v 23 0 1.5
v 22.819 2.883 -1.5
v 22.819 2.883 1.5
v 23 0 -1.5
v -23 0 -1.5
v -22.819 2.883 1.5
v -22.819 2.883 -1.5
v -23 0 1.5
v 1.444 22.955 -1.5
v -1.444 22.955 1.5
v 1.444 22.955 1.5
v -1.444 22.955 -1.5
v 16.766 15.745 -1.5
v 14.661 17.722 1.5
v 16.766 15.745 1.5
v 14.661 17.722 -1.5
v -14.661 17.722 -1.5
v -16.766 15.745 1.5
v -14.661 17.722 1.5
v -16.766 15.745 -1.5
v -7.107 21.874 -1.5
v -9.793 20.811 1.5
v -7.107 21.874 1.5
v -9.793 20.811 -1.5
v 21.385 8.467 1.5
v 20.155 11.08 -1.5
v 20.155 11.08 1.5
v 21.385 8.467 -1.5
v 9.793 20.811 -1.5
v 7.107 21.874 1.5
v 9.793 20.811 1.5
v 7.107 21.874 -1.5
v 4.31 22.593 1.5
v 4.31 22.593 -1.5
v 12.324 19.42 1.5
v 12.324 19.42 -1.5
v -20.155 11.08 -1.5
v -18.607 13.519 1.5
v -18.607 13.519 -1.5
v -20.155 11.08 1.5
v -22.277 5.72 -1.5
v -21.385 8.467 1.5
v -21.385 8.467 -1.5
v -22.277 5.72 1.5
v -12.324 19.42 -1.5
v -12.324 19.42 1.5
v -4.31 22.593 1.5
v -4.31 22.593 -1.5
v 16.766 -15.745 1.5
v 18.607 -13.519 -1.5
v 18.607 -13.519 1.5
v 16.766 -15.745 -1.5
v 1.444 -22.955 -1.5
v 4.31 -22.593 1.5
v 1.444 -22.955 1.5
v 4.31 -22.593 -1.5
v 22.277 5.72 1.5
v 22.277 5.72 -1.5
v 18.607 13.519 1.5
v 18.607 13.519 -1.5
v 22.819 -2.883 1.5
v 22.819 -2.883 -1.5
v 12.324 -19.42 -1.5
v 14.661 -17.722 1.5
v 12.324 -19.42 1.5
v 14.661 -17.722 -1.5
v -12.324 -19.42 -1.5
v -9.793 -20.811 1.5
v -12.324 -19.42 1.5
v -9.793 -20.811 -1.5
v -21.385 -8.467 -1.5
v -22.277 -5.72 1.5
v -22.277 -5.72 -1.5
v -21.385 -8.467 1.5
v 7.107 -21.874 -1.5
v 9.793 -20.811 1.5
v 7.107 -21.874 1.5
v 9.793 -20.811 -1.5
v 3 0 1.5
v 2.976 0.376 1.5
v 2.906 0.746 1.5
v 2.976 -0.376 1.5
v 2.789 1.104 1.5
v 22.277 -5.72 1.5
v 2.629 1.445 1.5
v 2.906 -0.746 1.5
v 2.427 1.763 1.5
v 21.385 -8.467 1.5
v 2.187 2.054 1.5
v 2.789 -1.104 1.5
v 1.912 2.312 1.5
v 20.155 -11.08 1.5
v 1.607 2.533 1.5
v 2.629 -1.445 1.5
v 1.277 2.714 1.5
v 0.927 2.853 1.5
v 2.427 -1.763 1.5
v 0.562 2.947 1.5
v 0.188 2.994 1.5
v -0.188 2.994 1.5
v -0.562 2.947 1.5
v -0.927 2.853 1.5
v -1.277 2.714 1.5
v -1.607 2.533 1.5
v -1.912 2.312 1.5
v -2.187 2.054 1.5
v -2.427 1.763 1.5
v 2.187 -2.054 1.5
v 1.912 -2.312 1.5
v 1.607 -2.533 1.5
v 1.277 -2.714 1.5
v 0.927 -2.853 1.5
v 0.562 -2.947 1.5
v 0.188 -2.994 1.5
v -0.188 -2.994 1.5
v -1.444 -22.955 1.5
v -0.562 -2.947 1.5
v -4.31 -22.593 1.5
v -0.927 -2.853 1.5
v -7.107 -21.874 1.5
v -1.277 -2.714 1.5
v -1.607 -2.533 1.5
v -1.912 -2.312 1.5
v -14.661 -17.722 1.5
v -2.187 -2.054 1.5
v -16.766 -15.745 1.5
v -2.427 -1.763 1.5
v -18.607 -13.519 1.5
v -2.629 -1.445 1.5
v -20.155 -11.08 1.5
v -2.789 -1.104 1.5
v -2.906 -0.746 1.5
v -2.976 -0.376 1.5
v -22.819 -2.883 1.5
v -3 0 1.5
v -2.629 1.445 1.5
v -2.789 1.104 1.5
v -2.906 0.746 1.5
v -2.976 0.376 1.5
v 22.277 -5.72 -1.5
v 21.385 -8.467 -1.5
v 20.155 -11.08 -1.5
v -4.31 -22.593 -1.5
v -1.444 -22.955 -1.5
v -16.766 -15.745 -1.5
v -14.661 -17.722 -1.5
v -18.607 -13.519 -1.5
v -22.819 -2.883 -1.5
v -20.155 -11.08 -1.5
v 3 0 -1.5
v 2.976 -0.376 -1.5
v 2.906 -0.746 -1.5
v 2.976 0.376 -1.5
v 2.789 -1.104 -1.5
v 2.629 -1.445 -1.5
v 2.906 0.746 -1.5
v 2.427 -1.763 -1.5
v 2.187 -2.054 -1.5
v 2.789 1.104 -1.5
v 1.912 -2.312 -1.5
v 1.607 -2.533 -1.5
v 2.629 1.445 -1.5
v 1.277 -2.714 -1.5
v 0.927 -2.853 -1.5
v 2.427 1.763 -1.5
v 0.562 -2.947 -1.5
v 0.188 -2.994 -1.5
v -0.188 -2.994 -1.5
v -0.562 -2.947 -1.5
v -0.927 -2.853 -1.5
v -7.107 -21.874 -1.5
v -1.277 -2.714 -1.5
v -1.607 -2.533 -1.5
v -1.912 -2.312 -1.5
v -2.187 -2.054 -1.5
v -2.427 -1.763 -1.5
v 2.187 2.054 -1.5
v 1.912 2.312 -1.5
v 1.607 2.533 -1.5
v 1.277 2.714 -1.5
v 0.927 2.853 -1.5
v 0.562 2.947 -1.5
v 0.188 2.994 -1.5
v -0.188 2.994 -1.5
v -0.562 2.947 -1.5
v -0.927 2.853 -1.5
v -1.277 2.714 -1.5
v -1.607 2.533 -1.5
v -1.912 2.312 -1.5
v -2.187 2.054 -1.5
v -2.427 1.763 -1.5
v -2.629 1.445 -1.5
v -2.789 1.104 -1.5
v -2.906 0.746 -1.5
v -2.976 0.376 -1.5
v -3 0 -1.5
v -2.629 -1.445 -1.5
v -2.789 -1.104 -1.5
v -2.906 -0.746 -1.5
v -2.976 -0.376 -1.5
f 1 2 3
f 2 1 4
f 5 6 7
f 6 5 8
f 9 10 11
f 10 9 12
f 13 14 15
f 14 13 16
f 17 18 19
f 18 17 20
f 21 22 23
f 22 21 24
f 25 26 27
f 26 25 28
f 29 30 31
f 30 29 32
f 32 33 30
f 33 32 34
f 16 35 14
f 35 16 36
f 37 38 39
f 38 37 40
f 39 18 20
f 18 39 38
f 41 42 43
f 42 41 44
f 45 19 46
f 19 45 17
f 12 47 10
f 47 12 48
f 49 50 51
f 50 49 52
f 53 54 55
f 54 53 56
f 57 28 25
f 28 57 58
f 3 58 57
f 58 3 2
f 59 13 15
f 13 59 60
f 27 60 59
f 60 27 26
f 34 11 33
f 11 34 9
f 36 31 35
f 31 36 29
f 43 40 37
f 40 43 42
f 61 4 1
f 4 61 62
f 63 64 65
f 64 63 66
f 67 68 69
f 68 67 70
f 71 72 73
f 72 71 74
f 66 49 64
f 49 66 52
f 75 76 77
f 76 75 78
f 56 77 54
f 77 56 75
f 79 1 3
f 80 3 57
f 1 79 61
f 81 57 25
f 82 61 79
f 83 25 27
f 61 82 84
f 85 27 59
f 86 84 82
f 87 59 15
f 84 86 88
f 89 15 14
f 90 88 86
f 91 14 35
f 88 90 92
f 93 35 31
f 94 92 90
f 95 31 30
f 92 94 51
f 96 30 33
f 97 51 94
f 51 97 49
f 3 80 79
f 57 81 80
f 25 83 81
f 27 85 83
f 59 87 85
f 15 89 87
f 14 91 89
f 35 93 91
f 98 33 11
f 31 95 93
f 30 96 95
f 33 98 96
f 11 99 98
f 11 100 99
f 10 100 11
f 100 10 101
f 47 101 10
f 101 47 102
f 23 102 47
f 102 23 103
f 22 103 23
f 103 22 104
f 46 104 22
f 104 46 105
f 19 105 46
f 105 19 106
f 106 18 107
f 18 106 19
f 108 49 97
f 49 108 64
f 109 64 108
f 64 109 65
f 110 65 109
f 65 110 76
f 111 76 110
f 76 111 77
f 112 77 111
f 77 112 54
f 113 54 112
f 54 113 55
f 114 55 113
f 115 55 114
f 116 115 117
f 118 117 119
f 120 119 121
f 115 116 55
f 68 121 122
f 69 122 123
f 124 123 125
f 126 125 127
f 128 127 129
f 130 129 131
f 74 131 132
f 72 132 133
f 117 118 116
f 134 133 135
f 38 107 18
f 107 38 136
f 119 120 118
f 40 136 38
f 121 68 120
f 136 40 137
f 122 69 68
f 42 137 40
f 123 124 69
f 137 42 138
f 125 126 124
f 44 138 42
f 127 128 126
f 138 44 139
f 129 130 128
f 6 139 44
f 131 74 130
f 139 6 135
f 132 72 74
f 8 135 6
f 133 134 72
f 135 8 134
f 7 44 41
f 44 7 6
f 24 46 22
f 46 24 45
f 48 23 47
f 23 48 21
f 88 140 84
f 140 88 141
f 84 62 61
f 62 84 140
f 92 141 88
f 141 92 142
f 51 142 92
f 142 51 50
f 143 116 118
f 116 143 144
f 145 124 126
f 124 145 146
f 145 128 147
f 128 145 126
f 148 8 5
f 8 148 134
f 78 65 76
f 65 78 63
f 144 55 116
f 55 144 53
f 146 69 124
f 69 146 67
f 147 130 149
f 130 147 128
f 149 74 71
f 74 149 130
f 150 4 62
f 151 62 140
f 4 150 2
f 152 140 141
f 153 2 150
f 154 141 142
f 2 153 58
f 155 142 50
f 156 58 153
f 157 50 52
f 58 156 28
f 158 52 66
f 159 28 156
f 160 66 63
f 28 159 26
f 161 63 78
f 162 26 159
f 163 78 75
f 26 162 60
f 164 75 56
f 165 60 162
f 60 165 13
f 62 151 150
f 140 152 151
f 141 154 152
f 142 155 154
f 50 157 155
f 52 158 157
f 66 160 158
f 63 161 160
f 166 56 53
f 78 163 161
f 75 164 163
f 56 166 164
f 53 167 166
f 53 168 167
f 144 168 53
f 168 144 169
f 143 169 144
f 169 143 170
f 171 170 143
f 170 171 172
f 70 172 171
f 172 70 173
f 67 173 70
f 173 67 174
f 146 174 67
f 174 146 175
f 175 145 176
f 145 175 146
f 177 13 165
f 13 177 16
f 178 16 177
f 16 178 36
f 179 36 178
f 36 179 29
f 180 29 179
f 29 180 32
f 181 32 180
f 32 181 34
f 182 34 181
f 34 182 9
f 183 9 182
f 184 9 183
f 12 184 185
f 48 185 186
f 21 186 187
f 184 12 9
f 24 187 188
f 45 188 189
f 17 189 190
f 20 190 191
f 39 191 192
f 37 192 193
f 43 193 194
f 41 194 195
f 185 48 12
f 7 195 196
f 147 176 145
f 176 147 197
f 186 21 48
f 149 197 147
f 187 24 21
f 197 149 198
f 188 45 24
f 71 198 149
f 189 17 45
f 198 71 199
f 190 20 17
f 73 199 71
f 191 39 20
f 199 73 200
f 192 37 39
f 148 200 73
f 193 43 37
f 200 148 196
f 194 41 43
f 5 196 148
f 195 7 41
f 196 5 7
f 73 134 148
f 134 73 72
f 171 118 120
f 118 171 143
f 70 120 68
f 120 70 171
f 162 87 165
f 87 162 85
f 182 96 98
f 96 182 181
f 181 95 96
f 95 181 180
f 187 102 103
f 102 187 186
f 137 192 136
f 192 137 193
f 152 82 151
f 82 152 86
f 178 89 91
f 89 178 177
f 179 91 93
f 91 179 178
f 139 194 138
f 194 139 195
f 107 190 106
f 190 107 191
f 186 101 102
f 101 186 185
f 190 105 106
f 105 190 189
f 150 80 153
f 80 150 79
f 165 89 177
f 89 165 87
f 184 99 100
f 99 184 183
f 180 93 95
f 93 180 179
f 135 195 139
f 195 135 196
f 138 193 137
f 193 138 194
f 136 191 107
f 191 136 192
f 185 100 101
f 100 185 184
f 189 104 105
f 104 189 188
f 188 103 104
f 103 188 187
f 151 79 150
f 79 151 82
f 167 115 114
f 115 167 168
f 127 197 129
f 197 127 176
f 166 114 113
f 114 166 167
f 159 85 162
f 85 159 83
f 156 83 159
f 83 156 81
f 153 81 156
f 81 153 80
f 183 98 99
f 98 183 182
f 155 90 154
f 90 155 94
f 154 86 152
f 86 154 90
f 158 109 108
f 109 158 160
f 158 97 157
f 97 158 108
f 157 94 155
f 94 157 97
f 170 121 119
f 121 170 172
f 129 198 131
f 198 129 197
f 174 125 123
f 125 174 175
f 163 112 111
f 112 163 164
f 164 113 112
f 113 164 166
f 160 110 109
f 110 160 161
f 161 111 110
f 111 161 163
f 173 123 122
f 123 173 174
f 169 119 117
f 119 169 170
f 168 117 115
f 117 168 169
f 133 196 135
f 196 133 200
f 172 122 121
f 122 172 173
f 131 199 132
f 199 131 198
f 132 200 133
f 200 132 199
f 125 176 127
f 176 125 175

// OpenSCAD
$fn = 50;


difference() {
	union() {
		translate(v = [0, 0, -1.5000000000]) {
			cylinder(h = 3, r = 23.0000000000);
		}
	}
	union() {
		translate(v = [0, 0, -100.0000000000]) {
			cylinder(h = 200, r = 3.0000000000);
		}
	}
}
